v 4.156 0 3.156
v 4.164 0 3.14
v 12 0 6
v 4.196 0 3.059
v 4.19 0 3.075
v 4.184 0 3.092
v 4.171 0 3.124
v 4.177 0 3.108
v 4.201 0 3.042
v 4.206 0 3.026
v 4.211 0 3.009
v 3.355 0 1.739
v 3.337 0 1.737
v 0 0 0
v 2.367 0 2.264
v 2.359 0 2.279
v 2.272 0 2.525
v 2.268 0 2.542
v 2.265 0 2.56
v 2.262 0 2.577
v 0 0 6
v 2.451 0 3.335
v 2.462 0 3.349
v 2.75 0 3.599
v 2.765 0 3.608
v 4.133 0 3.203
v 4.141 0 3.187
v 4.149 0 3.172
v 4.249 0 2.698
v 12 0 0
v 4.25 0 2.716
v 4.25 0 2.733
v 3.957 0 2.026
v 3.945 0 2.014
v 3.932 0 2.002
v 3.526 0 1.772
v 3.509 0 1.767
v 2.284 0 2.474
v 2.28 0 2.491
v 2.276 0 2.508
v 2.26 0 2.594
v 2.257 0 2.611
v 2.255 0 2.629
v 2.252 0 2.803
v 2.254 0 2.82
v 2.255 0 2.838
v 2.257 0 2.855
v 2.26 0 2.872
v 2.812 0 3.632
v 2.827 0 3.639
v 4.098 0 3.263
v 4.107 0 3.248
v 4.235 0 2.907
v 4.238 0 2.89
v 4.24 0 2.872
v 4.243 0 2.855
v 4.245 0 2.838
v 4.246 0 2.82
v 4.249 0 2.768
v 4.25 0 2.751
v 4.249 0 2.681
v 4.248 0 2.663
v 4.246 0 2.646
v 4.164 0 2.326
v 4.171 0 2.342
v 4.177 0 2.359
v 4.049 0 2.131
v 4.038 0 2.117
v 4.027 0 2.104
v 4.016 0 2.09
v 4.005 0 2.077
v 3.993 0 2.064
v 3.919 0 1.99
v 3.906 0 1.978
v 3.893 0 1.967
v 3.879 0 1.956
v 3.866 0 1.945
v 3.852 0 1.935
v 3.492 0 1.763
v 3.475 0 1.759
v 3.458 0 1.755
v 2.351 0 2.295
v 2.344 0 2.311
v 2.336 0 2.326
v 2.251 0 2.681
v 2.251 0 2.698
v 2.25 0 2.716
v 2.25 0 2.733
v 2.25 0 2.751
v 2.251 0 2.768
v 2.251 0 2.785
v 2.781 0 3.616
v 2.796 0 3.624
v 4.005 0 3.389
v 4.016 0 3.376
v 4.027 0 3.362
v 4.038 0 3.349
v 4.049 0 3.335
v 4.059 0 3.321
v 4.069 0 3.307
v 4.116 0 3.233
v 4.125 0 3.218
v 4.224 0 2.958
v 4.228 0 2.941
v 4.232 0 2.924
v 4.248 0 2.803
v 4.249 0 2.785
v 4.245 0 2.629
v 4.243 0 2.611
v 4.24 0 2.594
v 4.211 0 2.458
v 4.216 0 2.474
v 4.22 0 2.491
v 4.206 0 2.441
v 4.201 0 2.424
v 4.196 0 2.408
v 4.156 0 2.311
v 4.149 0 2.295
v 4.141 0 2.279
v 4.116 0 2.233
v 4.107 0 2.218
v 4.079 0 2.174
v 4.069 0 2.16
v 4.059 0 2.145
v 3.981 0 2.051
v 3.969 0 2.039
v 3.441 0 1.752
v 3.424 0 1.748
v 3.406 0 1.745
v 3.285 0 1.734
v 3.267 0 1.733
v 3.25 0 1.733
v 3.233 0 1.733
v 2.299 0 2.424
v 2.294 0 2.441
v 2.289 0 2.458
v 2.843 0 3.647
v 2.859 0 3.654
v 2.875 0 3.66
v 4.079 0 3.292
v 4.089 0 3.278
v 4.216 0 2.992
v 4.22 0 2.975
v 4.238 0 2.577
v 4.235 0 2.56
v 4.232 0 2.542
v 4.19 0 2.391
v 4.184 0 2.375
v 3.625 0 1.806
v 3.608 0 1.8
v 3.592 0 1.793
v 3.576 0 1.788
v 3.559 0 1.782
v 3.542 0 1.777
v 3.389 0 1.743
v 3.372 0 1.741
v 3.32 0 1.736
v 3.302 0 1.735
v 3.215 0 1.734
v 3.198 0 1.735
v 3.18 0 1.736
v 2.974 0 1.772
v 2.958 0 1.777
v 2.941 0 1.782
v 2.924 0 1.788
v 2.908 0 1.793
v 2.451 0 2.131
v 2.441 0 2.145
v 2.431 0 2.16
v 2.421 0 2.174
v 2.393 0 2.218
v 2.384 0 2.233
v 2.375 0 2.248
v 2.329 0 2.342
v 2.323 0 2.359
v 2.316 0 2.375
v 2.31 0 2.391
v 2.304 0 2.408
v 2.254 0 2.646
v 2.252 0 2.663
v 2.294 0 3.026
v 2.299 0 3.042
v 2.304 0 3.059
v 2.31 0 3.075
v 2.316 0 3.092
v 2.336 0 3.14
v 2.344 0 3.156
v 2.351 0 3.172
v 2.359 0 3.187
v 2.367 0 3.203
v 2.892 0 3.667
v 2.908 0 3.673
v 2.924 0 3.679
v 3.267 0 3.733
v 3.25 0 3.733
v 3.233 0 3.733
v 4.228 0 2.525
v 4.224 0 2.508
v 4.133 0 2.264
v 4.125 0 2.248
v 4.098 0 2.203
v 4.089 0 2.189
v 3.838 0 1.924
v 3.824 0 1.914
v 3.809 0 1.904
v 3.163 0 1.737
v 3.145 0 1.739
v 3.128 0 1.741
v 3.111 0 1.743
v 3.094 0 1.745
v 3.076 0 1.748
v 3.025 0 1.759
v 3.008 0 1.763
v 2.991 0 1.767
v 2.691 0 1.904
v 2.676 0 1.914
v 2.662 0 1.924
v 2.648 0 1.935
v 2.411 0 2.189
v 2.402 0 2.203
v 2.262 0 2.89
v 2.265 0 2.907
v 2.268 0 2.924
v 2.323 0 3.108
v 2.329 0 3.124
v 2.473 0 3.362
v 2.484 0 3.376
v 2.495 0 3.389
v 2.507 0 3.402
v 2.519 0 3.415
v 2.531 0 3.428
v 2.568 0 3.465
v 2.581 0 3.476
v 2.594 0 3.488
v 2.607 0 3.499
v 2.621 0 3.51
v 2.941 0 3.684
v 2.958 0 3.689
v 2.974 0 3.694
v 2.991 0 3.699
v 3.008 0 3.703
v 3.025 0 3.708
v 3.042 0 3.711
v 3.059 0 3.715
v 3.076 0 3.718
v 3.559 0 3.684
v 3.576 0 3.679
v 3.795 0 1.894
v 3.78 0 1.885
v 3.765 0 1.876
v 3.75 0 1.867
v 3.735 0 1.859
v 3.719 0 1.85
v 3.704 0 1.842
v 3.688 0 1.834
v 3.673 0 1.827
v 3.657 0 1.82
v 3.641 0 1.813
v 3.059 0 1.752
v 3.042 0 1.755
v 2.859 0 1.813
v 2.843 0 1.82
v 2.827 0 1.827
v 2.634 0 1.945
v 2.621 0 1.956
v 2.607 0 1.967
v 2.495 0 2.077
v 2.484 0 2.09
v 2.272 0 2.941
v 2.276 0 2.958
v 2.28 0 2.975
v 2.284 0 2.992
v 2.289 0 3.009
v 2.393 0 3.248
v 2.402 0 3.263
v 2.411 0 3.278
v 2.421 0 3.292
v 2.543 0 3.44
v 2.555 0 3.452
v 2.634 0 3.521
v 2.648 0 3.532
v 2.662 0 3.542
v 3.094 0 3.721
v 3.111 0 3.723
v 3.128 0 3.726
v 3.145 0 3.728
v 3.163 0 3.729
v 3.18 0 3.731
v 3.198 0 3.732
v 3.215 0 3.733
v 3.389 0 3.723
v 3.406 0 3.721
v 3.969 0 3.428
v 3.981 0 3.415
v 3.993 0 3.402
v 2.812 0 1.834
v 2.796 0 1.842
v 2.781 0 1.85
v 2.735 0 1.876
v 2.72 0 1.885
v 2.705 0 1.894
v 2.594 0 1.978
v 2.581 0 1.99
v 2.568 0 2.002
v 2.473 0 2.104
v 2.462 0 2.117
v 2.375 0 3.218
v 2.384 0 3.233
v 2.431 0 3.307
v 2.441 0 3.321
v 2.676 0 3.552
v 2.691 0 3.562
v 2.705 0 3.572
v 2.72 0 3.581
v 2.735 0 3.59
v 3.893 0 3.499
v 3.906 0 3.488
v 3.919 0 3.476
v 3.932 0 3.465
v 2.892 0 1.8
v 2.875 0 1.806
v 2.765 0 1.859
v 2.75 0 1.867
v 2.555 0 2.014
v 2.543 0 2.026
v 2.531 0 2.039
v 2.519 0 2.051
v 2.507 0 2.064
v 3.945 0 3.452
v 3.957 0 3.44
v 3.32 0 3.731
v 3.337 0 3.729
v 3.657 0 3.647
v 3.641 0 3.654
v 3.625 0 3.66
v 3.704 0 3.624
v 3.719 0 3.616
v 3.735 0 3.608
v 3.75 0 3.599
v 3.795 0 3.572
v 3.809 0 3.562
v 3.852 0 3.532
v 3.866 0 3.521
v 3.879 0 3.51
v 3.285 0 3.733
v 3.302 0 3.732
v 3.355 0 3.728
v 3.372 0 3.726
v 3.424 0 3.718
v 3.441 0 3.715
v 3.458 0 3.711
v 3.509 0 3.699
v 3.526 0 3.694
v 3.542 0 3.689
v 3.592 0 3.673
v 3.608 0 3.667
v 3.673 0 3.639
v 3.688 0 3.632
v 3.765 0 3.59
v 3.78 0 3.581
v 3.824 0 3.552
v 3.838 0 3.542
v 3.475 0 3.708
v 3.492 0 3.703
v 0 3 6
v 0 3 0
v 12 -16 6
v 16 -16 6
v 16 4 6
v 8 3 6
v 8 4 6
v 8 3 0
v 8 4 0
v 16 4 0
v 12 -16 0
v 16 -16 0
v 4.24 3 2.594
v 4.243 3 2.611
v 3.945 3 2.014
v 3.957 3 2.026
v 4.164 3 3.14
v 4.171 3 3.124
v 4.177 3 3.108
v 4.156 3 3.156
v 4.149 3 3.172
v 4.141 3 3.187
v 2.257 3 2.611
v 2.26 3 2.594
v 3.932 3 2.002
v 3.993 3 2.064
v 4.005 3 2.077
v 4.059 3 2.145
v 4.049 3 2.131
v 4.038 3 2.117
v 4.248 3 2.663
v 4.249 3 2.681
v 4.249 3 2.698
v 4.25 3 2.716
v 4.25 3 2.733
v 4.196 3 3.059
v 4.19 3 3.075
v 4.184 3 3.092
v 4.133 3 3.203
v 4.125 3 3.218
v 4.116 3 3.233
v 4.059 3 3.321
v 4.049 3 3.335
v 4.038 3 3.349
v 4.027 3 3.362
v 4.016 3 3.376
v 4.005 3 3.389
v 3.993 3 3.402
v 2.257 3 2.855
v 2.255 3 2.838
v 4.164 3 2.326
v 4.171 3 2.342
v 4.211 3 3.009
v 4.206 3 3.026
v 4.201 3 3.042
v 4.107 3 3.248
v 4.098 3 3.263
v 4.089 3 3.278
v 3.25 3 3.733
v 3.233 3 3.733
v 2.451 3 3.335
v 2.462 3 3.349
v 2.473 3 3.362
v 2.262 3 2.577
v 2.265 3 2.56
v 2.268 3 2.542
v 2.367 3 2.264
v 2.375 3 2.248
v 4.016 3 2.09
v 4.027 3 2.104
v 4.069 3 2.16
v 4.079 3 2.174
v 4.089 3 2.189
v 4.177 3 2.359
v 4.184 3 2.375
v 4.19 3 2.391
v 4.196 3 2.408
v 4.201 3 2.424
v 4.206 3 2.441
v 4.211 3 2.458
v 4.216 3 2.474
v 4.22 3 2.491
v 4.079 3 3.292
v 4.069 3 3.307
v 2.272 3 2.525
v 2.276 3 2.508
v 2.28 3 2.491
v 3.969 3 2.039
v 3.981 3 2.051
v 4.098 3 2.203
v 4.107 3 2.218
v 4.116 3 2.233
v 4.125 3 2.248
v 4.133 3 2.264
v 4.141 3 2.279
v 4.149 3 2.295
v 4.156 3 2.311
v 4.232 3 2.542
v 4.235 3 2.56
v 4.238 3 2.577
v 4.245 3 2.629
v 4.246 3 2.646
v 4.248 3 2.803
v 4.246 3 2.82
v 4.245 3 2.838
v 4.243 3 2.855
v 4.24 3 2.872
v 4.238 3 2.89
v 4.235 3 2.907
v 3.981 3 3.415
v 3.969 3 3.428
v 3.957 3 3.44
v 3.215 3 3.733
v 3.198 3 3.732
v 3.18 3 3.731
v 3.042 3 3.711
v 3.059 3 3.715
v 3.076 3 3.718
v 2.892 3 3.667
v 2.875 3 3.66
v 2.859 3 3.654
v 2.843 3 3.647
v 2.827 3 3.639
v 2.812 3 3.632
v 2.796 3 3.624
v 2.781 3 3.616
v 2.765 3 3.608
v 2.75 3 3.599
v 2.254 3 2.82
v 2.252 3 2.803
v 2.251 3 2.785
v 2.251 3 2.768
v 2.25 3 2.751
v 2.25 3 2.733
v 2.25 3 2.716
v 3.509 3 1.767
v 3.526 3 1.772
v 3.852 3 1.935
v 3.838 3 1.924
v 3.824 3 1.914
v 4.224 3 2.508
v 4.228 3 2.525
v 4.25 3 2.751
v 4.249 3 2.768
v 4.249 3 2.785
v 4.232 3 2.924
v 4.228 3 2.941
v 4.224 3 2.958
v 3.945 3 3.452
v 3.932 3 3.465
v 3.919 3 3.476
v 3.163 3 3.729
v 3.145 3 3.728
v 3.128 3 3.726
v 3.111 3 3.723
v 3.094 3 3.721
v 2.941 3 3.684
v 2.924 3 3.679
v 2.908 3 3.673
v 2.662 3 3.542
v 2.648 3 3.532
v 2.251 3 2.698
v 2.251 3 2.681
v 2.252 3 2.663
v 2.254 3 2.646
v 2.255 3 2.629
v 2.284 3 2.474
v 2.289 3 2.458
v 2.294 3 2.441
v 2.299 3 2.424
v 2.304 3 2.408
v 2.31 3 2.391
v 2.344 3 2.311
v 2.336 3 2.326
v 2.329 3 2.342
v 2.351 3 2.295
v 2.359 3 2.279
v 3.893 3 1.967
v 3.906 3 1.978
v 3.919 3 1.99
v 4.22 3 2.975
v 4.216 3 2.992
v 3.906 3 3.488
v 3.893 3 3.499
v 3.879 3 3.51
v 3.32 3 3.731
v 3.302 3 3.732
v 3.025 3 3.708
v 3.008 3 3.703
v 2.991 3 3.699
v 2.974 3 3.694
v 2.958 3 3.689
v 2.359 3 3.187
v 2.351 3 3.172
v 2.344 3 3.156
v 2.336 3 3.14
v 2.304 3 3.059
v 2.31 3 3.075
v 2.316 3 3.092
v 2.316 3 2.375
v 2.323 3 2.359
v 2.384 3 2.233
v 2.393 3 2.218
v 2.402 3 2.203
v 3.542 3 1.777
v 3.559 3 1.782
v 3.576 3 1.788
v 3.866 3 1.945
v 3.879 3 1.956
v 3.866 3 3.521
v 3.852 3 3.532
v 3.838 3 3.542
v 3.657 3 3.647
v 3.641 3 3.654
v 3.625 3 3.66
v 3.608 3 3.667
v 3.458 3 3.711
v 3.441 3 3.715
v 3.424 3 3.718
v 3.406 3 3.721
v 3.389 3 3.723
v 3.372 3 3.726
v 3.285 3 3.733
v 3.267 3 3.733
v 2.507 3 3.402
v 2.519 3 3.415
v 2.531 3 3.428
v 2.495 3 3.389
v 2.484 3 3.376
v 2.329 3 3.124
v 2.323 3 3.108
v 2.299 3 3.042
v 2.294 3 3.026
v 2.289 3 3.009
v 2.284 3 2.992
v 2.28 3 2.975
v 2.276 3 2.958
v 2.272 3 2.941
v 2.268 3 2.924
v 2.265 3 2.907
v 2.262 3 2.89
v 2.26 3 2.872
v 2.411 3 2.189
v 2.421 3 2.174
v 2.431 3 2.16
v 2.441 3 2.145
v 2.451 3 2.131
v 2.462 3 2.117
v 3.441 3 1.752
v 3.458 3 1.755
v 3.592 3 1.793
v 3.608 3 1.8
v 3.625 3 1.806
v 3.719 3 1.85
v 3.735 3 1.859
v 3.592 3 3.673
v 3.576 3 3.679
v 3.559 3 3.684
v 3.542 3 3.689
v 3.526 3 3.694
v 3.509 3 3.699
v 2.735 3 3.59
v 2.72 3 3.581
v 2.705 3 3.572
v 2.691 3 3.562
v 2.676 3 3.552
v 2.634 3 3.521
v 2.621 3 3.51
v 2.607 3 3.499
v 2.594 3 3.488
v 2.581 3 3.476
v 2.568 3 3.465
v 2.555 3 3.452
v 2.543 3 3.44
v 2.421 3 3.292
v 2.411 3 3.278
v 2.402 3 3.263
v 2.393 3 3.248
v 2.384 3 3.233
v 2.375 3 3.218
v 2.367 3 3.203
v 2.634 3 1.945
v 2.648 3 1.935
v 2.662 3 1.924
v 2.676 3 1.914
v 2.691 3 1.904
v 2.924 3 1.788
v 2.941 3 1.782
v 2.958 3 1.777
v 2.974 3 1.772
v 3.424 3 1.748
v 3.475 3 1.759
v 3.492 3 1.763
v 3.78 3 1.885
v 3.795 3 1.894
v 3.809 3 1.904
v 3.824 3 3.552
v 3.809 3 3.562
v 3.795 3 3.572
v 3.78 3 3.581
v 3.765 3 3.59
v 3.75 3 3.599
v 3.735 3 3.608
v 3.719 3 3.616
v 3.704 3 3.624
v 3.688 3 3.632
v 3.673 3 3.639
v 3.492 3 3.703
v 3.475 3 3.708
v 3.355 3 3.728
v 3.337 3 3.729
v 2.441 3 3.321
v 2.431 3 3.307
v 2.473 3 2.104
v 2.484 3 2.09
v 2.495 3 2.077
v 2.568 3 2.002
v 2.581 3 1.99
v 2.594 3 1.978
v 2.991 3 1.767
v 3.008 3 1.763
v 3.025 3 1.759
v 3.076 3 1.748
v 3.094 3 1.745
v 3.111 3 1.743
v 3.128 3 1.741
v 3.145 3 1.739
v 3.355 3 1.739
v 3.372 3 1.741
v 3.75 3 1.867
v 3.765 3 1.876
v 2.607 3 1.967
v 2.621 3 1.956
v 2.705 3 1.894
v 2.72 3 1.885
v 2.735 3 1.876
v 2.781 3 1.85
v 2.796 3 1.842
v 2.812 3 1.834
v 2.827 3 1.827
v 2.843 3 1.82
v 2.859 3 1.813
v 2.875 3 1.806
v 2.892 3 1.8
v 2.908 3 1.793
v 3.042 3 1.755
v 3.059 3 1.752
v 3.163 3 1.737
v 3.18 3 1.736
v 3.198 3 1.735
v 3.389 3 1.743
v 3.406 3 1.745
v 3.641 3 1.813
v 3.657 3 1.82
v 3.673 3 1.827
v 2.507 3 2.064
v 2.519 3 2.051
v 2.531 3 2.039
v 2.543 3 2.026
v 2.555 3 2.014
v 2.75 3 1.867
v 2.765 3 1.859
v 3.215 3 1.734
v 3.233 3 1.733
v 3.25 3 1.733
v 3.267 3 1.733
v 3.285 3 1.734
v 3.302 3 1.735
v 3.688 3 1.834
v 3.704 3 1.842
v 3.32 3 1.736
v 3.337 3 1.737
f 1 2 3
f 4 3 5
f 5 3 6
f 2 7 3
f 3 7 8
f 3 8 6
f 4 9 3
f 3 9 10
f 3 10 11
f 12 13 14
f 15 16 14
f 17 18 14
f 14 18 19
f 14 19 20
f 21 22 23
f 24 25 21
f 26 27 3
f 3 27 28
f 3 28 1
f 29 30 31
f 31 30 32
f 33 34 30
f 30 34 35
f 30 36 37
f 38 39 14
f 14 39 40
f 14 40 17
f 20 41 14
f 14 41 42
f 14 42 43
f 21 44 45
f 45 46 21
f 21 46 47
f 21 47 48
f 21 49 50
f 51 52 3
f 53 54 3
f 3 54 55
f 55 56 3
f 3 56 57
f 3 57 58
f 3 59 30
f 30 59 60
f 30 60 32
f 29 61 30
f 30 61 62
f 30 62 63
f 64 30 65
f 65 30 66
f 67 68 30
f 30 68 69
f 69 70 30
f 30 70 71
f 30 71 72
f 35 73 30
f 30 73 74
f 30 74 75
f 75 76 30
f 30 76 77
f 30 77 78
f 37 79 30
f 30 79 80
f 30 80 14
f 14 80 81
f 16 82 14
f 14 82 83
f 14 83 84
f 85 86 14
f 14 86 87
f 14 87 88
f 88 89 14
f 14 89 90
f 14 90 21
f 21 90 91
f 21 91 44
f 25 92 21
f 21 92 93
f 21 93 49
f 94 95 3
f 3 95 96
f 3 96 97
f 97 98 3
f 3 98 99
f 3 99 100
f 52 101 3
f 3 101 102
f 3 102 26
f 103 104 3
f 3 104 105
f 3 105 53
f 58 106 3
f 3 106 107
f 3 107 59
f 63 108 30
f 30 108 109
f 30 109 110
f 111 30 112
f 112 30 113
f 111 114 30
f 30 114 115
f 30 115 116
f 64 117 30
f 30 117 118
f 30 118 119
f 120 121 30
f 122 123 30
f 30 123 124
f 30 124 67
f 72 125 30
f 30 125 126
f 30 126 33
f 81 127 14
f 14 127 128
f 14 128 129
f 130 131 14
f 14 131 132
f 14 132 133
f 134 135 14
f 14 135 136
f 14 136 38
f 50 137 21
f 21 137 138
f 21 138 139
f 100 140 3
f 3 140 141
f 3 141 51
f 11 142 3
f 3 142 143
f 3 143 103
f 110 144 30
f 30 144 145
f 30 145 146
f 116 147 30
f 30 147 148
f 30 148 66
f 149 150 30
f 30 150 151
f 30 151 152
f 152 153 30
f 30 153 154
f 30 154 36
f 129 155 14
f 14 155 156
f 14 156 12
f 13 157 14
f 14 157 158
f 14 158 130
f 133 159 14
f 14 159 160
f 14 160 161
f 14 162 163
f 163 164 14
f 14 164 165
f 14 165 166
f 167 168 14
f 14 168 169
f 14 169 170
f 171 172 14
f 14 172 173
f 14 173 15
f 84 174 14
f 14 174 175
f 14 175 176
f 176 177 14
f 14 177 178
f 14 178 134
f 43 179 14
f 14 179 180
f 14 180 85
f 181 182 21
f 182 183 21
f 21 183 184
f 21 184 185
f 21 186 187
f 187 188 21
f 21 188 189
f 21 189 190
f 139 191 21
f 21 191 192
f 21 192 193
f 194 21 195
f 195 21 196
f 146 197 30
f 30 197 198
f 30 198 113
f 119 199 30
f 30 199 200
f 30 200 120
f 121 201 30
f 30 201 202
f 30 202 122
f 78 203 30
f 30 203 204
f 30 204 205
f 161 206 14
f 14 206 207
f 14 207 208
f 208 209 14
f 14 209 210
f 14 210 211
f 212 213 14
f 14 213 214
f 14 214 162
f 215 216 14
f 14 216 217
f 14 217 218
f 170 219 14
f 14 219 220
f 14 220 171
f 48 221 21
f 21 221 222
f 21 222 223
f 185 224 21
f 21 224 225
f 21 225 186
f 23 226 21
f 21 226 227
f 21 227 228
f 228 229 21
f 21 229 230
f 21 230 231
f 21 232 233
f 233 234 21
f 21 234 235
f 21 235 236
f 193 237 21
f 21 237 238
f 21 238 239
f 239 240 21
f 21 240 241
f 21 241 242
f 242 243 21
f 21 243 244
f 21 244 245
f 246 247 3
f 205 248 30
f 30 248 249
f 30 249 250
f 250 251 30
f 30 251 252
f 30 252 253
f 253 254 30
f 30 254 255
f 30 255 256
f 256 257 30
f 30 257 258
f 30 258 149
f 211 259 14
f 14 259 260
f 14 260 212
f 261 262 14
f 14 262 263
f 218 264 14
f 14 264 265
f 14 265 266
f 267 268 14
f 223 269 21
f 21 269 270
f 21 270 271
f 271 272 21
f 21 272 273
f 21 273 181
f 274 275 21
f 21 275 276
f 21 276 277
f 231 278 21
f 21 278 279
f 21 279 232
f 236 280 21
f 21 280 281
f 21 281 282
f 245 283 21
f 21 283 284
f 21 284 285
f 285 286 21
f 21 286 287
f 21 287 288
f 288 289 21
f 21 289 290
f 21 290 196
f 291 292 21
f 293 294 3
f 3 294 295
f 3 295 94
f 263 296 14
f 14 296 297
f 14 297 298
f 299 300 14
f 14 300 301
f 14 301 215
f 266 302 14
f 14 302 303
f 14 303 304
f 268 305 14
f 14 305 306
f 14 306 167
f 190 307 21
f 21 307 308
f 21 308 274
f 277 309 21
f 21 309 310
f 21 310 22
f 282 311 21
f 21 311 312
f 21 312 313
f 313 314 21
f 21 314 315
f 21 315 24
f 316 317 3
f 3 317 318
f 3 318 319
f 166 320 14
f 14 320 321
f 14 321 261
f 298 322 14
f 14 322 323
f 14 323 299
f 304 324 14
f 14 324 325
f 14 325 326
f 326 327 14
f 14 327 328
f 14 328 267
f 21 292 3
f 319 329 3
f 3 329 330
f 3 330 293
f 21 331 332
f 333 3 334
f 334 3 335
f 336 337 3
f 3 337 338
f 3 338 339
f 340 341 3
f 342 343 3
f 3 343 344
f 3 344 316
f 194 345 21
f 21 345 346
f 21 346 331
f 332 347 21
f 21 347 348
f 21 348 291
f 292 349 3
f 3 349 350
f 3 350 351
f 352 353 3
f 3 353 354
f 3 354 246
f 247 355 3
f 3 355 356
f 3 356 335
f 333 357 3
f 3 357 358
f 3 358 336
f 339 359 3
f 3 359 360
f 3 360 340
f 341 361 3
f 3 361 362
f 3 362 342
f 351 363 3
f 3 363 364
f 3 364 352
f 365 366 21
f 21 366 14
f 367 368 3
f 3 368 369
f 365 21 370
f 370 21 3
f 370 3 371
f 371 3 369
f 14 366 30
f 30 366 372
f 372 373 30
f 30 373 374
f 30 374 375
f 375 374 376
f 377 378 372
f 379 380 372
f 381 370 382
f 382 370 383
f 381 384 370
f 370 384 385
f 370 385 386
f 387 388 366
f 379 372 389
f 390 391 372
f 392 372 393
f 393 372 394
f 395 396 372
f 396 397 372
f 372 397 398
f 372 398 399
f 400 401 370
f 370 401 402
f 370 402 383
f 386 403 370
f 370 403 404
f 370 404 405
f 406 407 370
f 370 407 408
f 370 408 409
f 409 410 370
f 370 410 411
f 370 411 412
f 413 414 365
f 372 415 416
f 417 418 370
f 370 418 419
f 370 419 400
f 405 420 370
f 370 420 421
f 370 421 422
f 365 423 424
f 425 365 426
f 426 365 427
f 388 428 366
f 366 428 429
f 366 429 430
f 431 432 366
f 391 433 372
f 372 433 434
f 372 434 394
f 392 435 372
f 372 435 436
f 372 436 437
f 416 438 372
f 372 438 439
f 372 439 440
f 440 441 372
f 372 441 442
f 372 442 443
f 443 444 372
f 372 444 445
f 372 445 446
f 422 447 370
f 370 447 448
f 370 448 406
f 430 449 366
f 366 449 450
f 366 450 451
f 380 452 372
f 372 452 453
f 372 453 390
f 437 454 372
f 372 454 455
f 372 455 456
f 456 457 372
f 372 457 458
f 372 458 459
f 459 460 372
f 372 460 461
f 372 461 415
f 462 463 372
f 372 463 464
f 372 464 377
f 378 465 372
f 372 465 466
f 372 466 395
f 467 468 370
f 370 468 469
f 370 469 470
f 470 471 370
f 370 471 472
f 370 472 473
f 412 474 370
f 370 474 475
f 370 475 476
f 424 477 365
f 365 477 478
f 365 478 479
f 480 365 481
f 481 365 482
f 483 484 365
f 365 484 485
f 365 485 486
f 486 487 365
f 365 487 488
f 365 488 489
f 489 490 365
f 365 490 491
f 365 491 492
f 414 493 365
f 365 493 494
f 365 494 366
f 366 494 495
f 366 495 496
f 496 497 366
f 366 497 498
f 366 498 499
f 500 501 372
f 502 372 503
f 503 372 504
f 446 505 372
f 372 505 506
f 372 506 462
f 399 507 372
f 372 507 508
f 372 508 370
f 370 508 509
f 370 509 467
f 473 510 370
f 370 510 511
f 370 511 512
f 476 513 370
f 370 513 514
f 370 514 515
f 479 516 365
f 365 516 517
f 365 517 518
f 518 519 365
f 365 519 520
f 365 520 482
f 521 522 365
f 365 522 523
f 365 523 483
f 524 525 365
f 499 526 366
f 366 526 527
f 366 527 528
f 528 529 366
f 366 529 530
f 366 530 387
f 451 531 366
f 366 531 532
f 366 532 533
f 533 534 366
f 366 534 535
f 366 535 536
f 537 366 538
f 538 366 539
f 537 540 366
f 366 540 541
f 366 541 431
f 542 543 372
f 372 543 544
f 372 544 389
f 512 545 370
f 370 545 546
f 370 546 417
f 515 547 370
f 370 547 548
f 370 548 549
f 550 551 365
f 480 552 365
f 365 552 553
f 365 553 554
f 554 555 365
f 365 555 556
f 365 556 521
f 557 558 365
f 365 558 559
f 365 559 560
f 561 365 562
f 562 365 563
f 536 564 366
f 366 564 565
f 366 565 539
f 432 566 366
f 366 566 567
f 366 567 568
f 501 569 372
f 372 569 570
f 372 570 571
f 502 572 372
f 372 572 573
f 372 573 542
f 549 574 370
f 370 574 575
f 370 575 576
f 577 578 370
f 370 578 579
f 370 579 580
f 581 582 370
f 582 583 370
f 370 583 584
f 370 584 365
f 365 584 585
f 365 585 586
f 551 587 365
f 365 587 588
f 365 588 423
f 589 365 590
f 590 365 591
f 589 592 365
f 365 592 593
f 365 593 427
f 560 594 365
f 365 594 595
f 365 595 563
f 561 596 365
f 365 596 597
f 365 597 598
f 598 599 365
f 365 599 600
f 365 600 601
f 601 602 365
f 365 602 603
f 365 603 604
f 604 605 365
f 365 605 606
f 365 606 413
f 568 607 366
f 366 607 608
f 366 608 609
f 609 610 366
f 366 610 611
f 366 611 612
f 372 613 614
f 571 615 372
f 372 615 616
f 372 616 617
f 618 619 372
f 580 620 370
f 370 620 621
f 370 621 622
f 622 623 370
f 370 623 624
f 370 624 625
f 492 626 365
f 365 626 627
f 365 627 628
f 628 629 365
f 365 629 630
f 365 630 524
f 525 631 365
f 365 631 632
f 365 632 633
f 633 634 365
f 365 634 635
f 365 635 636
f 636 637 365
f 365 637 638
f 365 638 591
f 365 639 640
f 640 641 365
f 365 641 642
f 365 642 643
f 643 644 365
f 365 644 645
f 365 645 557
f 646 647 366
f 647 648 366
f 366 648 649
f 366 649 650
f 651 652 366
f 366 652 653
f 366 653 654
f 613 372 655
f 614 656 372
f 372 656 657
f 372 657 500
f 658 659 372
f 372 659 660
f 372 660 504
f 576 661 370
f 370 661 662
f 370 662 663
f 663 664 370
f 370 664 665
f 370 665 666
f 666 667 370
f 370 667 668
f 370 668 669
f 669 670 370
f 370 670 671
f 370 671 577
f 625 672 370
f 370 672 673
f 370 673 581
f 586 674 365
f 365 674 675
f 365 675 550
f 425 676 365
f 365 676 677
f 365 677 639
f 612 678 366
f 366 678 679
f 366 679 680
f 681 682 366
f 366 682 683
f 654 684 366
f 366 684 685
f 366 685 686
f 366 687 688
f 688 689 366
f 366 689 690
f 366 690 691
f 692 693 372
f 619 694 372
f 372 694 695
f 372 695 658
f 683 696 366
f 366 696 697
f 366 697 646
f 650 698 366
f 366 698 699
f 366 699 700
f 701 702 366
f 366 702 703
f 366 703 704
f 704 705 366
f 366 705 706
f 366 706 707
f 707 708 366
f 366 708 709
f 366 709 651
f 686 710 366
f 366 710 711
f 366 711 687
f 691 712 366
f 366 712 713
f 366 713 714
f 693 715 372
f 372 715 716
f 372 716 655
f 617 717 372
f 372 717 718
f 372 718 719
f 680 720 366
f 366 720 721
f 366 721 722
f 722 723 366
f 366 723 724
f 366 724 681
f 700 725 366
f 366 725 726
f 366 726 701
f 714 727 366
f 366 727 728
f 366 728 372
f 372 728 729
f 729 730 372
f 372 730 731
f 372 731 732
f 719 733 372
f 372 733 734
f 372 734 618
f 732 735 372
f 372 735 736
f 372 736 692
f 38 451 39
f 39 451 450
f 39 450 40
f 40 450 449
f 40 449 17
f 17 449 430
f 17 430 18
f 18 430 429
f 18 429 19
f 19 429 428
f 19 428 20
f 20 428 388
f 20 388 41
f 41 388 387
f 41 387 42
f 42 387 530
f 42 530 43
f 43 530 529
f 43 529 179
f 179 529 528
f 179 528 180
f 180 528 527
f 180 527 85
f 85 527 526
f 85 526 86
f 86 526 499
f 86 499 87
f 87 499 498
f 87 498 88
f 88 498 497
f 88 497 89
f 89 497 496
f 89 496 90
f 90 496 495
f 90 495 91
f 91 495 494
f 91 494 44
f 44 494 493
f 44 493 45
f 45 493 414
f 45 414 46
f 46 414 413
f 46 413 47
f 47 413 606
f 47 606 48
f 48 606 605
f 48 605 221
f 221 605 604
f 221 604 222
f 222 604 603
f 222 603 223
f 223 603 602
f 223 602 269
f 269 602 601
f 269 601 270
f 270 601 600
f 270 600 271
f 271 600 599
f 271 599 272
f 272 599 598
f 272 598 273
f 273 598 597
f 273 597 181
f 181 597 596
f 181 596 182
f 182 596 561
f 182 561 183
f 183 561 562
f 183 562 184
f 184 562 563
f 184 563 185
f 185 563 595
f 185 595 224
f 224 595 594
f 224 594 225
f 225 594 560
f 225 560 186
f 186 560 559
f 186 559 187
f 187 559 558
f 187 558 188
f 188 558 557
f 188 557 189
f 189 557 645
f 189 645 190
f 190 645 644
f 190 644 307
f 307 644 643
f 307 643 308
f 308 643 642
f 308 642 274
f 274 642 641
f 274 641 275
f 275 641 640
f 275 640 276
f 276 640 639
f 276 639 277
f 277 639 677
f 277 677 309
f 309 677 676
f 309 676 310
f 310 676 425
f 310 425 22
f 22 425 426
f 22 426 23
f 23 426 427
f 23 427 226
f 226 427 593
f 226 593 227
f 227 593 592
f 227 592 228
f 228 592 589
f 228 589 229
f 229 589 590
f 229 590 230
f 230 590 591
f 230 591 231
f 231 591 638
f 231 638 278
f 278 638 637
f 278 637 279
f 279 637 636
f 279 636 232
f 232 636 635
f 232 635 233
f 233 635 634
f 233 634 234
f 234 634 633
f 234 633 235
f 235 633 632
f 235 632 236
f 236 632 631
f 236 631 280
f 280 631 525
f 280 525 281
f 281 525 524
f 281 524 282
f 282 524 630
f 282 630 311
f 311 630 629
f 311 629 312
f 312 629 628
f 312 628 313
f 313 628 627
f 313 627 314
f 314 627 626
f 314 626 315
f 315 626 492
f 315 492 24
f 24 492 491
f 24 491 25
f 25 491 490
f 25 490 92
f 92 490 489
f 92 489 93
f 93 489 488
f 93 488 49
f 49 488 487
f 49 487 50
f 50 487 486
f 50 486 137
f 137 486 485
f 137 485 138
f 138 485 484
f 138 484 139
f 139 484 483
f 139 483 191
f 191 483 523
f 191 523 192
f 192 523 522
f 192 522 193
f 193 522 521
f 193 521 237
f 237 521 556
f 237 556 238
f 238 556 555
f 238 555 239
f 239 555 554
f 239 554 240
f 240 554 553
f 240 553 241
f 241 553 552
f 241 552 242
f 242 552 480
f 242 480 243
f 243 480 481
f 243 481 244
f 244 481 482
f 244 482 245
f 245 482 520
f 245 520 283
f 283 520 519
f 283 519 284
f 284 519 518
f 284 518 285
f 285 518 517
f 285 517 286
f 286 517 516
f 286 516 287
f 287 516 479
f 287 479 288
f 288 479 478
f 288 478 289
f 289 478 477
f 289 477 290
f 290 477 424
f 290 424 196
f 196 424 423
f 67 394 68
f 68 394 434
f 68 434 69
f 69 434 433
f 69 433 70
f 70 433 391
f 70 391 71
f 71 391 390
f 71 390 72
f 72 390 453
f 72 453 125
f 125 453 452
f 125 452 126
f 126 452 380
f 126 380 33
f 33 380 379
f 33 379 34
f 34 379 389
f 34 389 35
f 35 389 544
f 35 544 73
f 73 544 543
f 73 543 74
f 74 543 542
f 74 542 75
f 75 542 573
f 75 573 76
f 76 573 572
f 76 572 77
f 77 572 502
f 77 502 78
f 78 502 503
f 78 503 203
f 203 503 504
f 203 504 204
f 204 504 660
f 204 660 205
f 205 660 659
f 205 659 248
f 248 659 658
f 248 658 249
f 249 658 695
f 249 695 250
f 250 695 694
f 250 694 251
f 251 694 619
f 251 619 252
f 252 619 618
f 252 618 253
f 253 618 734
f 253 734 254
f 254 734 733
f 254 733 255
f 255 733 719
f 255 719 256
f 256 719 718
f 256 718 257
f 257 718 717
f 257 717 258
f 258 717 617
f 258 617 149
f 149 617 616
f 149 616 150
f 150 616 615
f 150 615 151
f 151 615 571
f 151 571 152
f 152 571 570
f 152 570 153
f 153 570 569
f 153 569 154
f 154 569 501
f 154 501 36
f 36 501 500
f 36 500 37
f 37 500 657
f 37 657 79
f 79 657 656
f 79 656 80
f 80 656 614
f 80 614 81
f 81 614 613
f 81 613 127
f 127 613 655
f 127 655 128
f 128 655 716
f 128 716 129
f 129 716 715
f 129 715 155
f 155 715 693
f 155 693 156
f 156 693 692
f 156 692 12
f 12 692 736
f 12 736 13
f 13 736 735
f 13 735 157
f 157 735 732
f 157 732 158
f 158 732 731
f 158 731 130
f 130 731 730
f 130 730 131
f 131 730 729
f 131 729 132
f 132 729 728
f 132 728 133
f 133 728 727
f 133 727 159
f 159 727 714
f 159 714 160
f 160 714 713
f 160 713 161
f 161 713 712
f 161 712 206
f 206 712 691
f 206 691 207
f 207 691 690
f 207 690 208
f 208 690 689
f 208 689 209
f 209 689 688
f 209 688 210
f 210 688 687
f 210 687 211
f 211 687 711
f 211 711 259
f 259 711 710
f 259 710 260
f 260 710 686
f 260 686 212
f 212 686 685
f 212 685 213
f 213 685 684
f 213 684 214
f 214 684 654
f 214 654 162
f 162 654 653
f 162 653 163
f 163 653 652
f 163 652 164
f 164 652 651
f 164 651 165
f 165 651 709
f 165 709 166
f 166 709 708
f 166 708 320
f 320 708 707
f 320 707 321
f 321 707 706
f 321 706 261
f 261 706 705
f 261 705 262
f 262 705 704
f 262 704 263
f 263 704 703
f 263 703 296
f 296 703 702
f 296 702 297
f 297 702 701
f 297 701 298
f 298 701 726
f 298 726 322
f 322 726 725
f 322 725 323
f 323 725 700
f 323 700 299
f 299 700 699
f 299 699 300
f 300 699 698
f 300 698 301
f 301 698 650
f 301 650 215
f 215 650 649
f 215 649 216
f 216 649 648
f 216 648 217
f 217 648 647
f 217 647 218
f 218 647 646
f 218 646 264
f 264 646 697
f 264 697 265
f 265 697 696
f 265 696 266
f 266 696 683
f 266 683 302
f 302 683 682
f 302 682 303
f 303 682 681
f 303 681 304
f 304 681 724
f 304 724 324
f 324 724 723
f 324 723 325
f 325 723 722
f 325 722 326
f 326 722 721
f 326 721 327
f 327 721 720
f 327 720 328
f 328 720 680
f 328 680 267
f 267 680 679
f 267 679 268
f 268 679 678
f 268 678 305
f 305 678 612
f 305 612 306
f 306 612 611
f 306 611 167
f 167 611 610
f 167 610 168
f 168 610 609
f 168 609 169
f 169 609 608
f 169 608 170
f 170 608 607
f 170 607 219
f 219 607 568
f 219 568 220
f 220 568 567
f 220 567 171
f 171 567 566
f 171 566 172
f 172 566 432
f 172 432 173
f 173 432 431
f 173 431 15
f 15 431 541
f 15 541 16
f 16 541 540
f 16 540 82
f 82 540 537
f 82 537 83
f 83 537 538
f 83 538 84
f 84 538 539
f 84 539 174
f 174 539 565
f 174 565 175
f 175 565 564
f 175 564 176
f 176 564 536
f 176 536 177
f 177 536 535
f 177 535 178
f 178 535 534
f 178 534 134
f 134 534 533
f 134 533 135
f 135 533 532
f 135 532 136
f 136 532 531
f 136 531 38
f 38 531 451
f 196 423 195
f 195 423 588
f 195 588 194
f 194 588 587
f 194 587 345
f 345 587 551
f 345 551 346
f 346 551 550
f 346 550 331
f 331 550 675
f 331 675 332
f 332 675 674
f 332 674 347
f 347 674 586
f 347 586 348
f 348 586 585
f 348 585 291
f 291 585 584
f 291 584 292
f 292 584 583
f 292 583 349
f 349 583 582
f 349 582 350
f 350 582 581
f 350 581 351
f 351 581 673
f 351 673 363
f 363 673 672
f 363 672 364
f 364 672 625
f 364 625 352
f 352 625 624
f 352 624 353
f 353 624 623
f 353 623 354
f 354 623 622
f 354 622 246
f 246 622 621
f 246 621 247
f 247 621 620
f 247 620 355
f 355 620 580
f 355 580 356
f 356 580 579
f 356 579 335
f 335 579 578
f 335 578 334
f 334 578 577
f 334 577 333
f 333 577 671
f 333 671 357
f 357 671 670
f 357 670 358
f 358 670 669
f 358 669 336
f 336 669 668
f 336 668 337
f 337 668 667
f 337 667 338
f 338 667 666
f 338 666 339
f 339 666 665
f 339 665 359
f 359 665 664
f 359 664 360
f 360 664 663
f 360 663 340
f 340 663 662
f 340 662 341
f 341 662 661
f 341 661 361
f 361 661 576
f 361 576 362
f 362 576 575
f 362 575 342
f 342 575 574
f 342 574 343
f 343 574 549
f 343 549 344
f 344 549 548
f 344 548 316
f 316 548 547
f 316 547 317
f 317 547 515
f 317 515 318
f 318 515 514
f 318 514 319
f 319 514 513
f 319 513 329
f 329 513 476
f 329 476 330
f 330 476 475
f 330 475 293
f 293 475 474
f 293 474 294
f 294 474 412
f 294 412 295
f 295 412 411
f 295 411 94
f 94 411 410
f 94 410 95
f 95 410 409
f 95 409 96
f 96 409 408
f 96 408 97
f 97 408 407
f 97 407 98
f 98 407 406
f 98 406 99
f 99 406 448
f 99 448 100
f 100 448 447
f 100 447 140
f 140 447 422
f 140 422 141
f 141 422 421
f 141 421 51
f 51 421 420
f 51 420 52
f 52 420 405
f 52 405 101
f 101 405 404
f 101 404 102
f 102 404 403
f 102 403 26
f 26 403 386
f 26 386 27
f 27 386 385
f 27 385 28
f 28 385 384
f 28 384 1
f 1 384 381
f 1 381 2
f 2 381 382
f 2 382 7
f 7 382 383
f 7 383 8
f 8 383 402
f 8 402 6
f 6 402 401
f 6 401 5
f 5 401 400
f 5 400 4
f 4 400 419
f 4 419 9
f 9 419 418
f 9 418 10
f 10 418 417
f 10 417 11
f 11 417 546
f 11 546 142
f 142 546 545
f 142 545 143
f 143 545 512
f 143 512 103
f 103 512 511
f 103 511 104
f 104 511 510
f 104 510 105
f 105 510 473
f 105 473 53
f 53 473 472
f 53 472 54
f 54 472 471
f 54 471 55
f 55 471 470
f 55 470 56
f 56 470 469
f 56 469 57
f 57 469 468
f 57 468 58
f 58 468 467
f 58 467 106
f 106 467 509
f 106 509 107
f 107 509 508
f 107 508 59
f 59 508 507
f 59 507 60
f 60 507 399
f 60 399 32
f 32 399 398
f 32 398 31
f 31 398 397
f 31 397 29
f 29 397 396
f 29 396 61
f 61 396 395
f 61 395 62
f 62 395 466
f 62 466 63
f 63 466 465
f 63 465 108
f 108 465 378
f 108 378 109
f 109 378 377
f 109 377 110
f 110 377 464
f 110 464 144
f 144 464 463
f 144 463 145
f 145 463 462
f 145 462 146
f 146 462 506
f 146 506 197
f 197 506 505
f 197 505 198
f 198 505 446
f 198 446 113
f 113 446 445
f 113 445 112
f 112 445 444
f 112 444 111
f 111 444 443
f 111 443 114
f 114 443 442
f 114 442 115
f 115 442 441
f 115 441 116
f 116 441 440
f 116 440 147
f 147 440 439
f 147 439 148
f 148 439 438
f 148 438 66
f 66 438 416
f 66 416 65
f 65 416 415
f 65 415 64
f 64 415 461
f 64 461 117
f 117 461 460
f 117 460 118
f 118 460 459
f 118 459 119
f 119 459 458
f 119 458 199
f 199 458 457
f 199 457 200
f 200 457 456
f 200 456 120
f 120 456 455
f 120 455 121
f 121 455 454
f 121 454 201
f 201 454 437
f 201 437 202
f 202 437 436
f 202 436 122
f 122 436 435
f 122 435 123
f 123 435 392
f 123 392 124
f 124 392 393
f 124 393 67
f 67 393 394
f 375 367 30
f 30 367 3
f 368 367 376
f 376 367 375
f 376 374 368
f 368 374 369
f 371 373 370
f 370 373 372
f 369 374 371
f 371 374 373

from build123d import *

# Parameters (mm, degrees)
SKETCH1_W           = 15
SKETCH1_H           = 6
BOSS_EXTRUDE1_DEPTH = 3
CUT_EXTRUDE1_REACH  = 18.432
SKETCH2_R           = 1
SKETCH3_W           = 3
SKETCH3_H           = 6
BOSS_EXTRUDE2_DEPTH = 16
SKETCH4_W           = 6
SKETCH4_H           = 19
BOSS_EXTRUDE3_DEPTH = 1
SKETCH5_W           = 8
SKETCH5_H           = 6
BOSS_EXTRUDE4_DEPTH = 1


with BuildPart() as part:
    # Sketch1 → Boss-Extrude1 (new body)
    with BuildSketch(Plane(origin=(0, 0, 0), x_dir=(1, 0, 0), z_dir=(0, 1, 0))):
        with Locations((7.5, -3)):
            Rectangle(SKETCH1_W, SKETCH1_H)
    extrude(amount=BOSS_EXTRUDE1_DEPTH)

    # Sketch2 → Cut-Extrude1 (cut, up to next)
    with BuildSketch(Plane(origin=(0, 3, 0), x_dir=(1, 0, 0), z_dir=(0, 1, 0)), mode=Mode.PRIVATE) as cut_extrude1_sk1:
        with Locations(Location((3.25, -2.733160164, 0), (0, 0, 270))):
            Circle(SKETCH2_R)
    cut_extrude1_tool1 = extrude(cut_extrude1_sk1.sketch, amount=-CUT_EXTRUDE1_REACH, mode=Mode.PRIVATE) & part.part
    add(cut_extrude1_tool1.solids().sort_by_distance((3.25, 3, 2.73316))[0], mode=Mode.SUBTRACT)

    # Sketch3 → Boss-Extrude2 (add)
    with BuildSketch(Plane.XZ):
        with Locations((13.5, 3)):
            Rectangle(SKETCH3_W, SKETCH3_H)
    extrude(amount=BOSS_EXTRUDE2_DEPTH)

    # Sketch4 → Boss-Extrude3 (add)
    with BuildSketch(Plane(origin=(15, 0, 0), x_dir=(0, 0, -1), z_dir=(1, 0, 0))):
        with Locations((-3, -6.5)):
            Rectangle(SKETCH4_W, SKETCH4_H)
    extrude(amount=BOSS_EXTRUDE3_DEPTH)

    # Sketch5 → Boss-Extrude4 (add)
    with BuildSketch(Plane(origin=(0, 3, 0), x_dir=(1, 0, 0), z_dir=(0, 1, 0))):
        with Locations((12, -3)):
            Rectangle(SKETCH5_W, SKETCH5_H)
    extrude(amount=BOSS_EXTRUDE4_DEPTH)


solid = part.part
